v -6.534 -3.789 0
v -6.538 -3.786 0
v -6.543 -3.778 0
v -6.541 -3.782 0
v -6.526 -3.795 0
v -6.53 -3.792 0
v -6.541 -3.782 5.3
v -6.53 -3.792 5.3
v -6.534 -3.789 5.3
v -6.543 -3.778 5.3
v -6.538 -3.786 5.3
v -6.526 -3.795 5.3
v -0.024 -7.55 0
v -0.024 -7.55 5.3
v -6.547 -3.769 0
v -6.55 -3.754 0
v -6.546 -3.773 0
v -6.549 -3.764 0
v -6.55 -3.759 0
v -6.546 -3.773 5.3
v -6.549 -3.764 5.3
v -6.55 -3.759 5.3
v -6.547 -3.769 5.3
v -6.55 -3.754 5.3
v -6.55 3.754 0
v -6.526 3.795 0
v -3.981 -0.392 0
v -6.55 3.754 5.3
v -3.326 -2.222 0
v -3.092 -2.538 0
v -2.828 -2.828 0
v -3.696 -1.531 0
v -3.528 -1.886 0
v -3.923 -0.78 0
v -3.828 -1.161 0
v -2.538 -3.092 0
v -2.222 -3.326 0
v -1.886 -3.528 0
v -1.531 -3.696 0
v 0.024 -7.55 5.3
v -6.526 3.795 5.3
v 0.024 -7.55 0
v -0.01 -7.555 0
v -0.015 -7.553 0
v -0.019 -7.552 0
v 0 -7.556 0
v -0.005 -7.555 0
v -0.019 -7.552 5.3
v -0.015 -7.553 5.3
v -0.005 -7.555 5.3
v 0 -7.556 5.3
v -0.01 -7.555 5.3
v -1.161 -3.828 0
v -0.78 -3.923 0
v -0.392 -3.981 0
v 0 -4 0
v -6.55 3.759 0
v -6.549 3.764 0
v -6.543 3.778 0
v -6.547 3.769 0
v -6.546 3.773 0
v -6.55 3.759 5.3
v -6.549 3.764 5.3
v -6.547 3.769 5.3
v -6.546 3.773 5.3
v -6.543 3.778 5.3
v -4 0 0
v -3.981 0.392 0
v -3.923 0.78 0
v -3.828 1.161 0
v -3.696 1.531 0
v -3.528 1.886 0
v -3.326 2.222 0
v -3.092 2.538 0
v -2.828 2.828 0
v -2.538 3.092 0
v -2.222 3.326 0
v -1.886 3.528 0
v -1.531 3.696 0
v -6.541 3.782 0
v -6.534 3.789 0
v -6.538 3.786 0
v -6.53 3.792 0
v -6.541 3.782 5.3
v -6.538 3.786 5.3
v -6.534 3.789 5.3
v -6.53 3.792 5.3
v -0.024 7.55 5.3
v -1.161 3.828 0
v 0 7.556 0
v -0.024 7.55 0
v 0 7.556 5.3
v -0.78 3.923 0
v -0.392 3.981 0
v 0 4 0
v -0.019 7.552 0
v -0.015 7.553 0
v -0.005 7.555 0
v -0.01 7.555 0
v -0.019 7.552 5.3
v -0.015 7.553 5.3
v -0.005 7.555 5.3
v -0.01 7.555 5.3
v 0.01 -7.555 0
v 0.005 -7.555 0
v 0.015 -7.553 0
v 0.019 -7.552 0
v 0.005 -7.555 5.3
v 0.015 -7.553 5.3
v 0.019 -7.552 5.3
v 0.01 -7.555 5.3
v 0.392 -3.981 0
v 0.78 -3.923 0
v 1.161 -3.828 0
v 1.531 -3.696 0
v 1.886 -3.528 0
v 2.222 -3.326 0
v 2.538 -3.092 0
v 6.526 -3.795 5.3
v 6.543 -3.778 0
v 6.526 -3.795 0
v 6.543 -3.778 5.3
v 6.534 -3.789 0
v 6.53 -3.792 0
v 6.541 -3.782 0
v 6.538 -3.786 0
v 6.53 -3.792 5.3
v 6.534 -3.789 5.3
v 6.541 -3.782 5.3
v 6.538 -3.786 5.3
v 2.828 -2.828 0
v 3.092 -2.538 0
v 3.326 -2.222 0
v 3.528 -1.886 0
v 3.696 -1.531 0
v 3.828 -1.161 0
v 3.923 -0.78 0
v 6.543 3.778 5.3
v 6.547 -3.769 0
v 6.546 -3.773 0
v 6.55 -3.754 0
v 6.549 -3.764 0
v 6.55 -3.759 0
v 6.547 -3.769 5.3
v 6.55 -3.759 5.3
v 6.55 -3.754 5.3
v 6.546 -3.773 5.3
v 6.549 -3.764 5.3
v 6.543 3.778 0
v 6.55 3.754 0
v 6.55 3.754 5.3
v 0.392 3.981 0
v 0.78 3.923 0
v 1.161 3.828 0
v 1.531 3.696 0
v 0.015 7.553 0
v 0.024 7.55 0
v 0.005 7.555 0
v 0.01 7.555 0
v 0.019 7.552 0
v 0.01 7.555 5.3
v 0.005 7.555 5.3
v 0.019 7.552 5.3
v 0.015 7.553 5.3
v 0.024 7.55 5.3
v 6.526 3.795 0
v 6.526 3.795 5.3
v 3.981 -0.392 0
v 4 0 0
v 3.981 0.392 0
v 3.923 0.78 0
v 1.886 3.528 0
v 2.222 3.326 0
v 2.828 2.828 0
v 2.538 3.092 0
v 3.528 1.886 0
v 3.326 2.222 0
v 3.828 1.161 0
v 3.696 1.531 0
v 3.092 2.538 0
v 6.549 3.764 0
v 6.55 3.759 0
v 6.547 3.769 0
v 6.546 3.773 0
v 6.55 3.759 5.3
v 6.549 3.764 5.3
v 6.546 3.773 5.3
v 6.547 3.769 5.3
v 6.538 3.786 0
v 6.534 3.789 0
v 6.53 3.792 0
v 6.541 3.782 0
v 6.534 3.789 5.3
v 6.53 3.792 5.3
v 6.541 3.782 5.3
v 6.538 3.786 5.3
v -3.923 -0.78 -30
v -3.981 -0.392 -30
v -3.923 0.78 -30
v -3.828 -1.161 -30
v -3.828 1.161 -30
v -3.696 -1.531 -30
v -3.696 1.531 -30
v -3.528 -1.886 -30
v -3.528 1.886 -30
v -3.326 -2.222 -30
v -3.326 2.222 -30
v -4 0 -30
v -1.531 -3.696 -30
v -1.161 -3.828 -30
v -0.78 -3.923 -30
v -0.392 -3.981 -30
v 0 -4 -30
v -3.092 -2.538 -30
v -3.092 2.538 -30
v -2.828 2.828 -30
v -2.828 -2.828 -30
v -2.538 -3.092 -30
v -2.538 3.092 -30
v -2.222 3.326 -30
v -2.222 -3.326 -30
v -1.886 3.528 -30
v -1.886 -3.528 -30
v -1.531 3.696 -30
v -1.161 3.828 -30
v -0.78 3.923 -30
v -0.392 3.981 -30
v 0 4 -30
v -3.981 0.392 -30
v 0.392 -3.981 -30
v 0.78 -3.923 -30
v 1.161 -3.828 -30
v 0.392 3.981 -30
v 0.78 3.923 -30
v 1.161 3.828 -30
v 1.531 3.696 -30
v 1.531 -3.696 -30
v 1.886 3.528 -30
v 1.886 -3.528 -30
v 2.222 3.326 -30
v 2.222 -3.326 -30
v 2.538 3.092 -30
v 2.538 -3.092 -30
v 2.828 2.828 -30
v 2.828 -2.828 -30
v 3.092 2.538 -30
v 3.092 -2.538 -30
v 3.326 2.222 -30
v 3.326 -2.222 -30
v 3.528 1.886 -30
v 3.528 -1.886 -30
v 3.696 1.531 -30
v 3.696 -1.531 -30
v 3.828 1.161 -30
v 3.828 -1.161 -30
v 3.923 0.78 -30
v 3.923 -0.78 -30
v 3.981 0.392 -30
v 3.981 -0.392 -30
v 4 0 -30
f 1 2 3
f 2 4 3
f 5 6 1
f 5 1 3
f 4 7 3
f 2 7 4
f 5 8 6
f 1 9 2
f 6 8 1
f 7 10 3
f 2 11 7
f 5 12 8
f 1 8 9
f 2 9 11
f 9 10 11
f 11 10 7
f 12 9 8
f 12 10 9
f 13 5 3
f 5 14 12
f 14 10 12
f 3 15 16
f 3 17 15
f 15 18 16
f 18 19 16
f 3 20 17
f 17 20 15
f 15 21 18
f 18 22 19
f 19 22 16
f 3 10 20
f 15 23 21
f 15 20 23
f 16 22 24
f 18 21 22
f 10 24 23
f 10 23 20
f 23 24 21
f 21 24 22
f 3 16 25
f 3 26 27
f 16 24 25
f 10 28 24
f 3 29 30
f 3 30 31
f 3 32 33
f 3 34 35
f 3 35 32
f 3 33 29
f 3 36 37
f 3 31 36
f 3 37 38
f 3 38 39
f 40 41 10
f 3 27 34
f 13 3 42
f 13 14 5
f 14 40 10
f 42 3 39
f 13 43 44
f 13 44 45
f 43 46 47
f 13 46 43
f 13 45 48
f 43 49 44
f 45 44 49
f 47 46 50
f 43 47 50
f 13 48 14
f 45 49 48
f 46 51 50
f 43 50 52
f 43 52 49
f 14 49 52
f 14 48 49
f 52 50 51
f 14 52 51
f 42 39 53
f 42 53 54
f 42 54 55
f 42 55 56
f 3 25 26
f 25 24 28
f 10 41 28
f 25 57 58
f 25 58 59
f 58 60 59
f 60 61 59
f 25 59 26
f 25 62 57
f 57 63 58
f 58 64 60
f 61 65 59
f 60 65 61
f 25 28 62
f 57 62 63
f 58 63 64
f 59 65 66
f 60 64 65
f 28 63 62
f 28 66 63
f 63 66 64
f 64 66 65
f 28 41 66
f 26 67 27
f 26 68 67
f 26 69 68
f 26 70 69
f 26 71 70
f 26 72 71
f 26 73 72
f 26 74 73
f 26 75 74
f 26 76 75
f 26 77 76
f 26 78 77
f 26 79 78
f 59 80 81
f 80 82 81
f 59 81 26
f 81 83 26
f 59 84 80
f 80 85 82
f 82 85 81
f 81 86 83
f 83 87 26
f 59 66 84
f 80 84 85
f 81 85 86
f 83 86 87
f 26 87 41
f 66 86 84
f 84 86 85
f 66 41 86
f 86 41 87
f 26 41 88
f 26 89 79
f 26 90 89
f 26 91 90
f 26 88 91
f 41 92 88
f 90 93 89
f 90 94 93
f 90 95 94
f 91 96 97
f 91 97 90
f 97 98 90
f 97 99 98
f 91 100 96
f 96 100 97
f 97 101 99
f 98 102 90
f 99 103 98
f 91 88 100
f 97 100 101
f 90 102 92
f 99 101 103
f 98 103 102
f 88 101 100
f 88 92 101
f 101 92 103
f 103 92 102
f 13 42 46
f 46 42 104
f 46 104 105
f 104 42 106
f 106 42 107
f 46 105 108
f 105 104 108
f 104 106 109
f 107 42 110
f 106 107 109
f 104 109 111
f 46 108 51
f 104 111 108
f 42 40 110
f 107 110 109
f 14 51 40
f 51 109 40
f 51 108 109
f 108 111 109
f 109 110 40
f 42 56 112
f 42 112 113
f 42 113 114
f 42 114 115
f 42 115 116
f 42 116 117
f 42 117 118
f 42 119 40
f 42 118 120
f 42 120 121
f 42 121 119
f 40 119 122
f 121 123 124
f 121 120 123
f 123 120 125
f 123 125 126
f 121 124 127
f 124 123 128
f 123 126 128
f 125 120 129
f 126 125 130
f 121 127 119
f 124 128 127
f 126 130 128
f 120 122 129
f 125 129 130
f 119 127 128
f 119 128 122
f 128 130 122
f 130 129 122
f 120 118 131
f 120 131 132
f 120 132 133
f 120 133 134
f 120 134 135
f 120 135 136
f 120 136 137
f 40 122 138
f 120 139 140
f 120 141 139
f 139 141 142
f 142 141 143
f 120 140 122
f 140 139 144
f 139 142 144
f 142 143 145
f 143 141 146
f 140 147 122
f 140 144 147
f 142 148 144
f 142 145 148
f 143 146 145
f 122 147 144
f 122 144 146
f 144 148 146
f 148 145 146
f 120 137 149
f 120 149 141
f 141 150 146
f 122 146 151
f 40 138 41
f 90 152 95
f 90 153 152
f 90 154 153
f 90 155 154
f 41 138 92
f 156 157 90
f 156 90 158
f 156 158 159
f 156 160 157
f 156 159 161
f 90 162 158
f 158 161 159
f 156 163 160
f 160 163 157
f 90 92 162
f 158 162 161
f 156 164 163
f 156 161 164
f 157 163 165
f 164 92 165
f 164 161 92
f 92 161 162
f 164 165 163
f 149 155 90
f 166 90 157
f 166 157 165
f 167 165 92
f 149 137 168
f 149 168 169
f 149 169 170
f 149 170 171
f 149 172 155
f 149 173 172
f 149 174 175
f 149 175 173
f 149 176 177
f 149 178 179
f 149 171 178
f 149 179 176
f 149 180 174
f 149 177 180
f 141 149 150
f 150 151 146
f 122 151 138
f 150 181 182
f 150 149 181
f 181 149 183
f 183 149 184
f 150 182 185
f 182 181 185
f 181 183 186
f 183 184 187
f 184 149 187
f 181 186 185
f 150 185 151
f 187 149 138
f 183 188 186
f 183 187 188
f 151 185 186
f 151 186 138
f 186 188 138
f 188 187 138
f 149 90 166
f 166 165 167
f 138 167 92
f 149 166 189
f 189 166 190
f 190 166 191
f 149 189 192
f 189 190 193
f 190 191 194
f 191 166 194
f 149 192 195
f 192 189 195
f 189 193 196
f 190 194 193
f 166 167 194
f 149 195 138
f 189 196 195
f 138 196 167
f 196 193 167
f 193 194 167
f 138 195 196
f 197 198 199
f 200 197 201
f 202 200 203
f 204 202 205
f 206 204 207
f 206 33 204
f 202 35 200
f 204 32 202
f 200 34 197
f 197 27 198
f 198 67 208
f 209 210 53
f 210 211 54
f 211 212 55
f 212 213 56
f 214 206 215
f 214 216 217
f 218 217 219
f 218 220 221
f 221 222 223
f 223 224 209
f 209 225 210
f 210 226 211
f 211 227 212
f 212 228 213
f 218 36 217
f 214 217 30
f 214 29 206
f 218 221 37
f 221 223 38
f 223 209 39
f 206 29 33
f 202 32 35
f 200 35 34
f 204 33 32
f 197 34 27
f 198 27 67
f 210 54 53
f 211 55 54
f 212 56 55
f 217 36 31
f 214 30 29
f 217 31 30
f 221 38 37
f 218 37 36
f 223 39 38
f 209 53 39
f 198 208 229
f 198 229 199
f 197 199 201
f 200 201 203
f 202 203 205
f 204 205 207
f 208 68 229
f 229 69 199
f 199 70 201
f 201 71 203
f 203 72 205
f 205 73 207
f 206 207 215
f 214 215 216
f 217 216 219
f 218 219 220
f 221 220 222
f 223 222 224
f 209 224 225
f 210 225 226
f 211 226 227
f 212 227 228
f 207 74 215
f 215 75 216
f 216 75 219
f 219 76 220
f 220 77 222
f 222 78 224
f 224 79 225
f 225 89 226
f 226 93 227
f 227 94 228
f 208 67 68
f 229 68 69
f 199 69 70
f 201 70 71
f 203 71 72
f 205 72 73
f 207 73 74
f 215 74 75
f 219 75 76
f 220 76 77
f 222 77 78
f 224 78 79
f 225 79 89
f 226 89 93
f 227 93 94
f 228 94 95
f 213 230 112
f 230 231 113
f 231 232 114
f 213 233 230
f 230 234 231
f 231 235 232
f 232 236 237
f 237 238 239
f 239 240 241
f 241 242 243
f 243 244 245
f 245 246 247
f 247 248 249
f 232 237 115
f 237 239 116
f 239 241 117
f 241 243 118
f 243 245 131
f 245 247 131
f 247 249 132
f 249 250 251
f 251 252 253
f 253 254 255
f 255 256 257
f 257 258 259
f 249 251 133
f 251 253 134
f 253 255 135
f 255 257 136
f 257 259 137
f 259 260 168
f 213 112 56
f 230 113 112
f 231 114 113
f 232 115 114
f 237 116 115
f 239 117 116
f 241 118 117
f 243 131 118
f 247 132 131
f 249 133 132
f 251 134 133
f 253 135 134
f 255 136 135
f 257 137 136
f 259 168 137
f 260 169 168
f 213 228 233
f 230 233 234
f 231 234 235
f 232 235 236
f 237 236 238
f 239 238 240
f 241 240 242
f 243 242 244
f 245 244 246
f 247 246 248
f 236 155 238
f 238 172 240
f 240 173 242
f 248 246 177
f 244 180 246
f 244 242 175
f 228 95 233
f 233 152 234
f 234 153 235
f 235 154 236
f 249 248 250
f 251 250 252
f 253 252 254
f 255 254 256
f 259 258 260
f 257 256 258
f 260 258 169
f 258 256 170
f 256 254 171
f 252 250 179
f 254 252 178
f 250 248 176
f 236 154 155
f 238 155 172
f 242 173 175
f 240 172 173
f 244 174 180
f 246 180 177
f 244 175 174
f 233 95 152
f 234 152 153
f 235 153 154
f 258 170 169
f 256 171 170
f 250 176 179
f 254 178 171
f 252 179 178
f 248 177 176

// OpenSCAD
// M8 Hex Bolt (Standard Dimensions)
// $fn defines the smoothness of the circular shank.
$fn = 64;

// Dimensions
head_across_flats = 13;
head_height = 5.3;
shank_diameter = 8;
shank_length = 30;

// The distance from the center to each vertex of the hexagon
// Across-flats (W) and Radius to vertex (R) relationship:
// W = R * sqrt(3)  =>  R = W / sqrt(3)
head_radius_vertex = head_across_flats / sqrt(3);

// --- Shank ---
// Placed from z = -30 to z = 0
translate([0, 0, -shank_length])
    cylinder(d=shank_diameter, h=shank_length);

// --- Head ---
// Placed from z = 0 to z = 5.3
// Using hull() to create a perfect hexagon based on vertex distance.
// The orientation is adjusted so that a flat face is perpendicular to the X-axis.
rotate([0, 0, 30])
hull() {
    for (i = [0:5]) {
        rotate([0, 0, i * 60])
            translate([head_radius_vertex, 0, 0])
                cylinder(d=0.1, h=head_height);
    }
}
